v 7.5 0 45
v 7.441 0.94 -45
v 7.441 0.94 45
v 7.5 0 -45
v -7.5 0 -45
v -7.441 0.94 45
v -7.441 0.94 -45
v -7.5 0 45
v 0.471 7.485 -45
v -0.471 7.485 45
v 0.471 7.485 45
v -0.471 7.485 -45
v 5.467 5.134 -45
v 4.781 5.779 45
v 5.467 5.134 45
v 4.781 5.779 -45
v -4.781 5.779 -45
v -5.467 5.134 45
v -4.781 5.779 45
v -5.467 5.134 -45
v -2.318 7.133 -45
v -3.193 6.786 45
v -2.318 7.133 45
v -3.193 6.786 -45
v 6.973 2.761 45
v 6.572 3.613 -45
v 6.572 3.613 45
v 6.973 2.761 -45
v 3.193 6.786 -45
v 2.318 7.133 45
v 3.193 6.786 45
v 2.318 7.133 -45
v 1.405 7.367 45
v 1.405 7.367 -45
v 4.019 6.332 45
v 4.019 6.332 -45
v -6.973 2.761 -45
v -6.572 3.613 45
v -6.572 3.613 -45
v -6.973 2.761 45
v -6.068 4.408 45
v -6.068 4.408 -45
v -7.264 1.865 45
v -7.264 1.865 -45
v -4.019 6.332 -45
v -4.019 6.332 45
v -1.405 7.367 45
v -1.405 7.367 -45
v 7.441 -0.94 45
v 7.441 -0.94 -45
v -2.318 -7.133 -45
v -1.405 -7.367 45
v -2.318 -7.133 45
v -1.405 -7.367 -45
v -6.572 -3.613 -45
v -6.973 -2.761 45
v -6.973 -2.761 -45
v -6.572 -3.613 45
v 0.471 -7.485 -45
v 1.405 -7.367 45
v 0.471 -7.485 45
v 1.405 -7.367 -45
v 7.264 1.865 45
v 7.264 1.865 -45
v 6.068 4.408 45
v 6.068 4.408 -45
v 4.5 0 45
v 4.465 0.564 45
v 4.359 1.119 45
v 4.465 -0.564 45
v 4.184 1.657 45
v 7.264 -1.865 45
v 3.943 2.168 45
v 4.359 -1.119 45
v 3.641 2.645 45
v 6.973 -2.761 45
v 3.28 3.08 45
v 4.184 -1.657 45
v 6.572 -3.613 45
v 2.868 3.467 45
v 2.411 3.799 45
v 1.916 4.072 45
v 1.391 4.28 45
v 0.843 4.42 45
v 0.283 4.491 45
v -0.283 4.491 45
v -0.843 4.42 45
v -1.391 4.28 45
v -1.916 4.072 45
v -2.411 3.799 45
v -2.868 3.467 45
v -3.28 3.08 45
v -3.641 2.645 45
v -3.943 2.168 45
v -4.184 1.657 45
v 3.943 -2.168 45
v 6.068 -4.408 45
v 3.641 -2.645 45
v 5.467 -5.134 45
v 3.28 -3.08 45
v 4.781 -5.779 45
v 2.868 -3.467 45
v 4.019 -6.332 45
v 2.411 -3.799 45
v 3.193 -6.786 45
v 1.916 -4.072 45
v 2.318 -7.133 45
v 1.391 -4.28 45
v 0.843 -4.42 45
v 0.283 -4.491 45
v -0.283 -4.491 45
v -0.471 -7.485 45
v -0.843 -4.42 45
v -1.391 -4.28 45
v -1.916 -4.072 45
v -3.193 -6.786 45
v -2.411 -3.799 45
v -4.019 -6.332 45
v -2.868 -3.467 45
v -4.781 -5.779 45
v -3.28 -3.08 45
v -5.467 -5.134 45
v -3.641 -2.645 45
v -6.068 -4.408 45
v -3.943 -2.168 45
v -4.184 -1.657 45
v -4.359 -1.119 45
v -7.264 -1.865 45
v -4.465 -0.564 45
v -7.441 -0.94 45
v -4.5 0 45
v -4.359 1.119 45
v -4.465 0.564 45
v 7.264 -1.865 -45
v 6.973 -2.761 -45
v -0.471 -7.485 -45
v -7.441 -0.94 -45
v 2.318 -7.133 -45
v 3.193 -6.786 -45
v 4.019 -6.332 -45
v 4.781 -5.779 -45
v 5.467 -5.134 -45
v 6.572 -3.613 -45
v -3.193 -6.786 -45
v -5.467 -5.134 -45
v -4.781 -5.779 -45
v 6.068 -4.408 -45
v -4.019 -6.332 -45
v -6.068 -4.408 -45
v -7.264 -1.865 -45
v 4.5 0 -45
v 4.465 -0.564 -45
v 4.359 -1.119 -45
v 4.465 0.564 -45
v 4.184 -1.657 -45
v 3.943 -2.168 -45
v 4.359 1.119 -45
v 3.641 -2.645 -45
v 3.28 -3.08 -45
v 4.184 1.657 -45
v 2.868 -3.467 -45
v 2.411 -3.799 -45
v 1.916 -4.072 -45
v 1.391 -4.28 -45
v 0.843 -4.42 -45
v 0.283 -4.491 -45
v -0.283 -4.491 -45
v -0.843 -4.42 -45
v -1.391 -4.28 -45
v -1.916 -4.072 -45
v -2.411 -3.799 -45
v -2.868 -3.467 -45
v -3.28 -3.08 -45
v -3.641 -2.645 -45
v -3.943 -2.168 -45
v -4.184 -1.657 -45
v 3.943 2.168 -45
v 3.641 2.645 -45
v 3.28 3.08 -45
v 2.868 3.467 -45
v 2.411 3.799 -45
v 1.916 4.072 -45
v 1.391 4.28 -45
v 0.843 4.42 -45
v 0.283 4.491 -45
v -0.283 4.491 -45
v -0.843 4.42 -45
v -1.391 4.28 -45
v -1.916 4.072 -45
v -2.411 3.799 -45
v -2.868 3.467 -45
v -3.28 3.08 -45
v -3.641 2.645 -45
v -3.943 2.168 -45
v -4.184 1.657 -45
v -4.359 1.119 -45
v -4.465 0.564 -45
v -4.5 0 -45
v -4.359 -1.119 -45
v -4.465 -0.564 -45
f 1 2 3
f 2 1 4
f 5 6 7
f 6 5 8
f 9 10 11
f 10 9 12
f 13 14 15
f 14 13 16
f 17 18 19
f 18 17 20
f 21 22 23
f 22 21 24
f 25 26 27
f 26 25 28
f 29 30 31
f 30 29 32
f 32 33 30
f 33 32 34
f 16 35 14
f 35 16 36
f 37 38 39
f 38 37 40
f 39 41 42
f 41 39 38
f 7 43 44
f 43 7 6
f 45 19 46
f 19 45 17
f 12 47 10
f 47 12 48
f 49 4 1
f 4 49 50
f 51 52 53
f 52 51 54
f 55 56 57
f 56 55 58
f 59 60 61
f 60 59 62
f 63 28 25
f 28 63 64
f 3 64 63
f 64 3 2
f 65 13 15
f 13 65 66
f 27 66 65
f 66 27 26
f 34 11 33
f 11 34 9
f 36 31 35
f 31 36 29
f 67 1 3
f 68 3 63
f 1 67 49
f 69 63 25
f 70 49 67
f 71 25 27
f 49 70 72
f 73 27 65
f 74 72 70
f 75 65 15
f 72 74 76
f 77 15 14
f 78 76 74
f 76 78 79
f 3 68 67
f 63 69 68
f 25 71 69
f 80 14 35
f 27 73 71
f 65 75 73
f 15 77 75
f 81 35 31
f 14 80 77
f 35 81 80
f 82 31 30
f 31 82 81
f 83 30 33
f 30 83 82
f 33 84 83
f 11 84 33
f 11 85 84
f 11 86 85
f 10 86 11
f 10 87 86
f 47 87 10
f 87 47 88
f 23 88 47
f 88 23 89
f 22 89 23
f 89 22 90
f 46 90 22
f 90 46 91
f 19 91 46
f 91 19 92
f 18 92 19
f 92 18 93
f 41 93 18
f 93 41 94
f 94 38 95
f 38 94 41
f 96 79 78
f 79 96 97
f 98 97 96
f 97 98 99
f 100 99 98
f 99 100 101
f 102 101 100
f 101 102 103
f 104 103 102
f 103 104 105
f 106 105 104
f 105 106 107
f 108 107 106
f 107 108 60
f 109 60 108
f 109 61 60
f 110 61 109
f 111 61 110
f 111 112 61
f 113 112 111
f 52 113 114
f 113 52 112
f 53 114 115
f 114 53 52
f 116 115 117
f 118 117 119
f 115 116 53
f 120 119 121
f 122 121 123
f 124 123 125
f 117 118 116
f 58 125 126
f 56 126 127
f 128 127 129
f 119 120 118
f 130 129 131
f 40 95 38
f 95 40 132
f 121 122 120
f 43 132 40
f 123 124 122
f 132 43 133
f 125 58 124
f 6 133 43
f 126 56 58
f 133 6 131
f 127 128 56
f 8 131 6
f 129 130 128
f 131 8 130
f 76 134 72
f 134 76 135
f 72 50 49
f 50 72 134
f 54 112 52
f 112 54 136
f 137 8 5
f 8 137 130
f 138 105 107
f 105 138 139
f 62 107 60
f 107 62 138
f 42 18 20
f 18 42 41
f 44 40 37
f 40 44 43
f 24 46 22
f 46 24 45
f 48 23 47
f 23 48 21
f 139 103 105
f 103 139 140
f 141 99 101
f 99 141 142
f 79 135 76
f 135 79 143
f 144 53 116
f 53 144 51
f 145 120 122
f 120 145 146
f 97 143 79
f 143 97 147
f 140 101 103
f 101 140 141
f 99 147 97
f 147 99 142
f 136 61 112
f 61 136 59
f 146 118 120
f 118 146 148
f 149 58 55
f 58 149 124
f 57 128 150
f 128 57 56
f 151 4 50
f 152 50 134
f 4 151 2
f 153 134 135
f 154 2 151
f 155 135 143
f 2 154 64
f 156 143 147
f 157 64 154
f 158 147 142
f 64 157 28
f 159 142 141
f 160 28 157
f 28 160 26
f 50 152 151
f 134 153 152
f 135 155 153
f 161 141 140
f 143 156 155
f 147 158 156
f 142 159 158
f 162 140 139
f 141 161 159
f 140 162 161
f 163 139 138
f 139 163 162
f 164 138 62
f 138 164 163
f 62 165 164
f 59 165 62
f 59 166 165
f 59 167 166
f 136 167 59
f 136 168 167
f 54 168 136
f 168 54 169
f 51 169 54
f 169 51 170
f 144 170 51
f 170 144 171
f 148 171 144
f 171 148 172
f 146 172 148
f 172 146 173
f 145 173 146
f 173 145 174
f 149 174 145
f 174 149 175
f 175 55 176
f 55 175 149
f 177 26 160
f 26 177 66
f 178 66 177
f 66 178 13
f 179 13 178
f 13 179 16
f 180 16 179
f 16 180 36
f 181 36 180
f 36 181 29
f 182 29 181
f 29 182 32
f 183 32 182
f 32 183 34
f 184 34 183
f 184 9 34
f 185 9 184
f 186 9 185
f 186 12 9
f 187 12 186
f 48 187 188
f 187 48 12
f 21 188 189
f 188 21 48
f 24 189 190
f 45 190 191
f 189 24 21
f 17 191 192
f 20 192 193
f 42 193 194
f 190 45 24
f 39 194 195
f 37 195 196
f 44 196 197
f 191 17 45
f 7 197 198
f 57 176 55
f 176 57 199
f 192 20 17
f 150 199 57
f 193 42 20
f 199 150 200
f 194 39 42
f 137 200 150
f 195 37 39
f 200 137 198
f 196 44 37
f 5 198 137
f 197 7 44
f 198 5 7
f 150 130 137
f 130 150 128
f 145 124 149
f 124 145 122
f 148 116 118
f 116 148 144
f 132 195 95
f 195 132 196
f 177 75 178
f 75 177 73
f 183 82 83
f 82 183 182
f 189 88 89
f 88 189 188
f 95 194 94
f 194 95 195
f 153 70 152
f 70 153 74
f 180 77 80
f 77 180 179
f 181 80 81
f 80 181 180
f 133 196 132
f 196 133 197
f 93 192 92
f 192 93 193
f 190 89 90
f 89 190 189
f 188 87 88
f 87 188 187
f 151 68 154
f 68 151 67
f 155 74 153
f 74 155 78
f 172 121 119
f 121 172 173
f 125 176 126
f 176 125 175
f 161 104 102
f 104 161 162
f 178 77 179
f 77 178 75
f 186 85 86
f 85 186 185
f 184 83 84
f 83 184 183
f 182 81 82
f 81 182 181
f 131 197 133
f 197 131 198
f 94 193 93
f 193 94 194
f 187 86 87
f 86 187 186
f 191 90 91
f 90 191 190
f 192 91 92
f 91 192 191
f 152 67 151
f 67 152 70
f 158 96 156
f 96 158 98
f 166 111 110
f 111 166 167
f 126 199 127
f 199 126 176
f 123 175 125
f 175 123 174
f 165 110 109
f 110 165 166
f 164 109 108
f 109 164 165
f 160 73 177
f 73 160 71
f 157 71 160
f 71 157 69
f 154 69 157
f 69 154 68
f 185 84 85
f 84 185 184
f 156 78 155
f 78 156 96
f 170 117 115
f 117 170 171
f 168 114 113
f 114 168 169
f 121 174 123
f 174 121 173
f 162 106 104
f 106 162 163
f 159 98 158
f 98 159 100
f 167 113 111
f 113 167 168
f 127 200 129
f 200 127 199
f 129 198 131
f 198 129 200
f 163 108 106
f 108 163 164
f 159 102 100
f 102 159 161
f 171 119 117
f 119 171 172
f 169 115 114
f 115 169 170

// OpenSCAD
$fn = 50;


difference() {
	union() {
		translate(v = [0, 0, -45.0000000000]) {
			cylinder(h = 90, r = 7.5000000000);
		}
	}
	union() {
		translate(v = [0, 0, -100.0000000000]) {
			cylinder(h = 200, r = 4.5000000000);
		}
	}
}
